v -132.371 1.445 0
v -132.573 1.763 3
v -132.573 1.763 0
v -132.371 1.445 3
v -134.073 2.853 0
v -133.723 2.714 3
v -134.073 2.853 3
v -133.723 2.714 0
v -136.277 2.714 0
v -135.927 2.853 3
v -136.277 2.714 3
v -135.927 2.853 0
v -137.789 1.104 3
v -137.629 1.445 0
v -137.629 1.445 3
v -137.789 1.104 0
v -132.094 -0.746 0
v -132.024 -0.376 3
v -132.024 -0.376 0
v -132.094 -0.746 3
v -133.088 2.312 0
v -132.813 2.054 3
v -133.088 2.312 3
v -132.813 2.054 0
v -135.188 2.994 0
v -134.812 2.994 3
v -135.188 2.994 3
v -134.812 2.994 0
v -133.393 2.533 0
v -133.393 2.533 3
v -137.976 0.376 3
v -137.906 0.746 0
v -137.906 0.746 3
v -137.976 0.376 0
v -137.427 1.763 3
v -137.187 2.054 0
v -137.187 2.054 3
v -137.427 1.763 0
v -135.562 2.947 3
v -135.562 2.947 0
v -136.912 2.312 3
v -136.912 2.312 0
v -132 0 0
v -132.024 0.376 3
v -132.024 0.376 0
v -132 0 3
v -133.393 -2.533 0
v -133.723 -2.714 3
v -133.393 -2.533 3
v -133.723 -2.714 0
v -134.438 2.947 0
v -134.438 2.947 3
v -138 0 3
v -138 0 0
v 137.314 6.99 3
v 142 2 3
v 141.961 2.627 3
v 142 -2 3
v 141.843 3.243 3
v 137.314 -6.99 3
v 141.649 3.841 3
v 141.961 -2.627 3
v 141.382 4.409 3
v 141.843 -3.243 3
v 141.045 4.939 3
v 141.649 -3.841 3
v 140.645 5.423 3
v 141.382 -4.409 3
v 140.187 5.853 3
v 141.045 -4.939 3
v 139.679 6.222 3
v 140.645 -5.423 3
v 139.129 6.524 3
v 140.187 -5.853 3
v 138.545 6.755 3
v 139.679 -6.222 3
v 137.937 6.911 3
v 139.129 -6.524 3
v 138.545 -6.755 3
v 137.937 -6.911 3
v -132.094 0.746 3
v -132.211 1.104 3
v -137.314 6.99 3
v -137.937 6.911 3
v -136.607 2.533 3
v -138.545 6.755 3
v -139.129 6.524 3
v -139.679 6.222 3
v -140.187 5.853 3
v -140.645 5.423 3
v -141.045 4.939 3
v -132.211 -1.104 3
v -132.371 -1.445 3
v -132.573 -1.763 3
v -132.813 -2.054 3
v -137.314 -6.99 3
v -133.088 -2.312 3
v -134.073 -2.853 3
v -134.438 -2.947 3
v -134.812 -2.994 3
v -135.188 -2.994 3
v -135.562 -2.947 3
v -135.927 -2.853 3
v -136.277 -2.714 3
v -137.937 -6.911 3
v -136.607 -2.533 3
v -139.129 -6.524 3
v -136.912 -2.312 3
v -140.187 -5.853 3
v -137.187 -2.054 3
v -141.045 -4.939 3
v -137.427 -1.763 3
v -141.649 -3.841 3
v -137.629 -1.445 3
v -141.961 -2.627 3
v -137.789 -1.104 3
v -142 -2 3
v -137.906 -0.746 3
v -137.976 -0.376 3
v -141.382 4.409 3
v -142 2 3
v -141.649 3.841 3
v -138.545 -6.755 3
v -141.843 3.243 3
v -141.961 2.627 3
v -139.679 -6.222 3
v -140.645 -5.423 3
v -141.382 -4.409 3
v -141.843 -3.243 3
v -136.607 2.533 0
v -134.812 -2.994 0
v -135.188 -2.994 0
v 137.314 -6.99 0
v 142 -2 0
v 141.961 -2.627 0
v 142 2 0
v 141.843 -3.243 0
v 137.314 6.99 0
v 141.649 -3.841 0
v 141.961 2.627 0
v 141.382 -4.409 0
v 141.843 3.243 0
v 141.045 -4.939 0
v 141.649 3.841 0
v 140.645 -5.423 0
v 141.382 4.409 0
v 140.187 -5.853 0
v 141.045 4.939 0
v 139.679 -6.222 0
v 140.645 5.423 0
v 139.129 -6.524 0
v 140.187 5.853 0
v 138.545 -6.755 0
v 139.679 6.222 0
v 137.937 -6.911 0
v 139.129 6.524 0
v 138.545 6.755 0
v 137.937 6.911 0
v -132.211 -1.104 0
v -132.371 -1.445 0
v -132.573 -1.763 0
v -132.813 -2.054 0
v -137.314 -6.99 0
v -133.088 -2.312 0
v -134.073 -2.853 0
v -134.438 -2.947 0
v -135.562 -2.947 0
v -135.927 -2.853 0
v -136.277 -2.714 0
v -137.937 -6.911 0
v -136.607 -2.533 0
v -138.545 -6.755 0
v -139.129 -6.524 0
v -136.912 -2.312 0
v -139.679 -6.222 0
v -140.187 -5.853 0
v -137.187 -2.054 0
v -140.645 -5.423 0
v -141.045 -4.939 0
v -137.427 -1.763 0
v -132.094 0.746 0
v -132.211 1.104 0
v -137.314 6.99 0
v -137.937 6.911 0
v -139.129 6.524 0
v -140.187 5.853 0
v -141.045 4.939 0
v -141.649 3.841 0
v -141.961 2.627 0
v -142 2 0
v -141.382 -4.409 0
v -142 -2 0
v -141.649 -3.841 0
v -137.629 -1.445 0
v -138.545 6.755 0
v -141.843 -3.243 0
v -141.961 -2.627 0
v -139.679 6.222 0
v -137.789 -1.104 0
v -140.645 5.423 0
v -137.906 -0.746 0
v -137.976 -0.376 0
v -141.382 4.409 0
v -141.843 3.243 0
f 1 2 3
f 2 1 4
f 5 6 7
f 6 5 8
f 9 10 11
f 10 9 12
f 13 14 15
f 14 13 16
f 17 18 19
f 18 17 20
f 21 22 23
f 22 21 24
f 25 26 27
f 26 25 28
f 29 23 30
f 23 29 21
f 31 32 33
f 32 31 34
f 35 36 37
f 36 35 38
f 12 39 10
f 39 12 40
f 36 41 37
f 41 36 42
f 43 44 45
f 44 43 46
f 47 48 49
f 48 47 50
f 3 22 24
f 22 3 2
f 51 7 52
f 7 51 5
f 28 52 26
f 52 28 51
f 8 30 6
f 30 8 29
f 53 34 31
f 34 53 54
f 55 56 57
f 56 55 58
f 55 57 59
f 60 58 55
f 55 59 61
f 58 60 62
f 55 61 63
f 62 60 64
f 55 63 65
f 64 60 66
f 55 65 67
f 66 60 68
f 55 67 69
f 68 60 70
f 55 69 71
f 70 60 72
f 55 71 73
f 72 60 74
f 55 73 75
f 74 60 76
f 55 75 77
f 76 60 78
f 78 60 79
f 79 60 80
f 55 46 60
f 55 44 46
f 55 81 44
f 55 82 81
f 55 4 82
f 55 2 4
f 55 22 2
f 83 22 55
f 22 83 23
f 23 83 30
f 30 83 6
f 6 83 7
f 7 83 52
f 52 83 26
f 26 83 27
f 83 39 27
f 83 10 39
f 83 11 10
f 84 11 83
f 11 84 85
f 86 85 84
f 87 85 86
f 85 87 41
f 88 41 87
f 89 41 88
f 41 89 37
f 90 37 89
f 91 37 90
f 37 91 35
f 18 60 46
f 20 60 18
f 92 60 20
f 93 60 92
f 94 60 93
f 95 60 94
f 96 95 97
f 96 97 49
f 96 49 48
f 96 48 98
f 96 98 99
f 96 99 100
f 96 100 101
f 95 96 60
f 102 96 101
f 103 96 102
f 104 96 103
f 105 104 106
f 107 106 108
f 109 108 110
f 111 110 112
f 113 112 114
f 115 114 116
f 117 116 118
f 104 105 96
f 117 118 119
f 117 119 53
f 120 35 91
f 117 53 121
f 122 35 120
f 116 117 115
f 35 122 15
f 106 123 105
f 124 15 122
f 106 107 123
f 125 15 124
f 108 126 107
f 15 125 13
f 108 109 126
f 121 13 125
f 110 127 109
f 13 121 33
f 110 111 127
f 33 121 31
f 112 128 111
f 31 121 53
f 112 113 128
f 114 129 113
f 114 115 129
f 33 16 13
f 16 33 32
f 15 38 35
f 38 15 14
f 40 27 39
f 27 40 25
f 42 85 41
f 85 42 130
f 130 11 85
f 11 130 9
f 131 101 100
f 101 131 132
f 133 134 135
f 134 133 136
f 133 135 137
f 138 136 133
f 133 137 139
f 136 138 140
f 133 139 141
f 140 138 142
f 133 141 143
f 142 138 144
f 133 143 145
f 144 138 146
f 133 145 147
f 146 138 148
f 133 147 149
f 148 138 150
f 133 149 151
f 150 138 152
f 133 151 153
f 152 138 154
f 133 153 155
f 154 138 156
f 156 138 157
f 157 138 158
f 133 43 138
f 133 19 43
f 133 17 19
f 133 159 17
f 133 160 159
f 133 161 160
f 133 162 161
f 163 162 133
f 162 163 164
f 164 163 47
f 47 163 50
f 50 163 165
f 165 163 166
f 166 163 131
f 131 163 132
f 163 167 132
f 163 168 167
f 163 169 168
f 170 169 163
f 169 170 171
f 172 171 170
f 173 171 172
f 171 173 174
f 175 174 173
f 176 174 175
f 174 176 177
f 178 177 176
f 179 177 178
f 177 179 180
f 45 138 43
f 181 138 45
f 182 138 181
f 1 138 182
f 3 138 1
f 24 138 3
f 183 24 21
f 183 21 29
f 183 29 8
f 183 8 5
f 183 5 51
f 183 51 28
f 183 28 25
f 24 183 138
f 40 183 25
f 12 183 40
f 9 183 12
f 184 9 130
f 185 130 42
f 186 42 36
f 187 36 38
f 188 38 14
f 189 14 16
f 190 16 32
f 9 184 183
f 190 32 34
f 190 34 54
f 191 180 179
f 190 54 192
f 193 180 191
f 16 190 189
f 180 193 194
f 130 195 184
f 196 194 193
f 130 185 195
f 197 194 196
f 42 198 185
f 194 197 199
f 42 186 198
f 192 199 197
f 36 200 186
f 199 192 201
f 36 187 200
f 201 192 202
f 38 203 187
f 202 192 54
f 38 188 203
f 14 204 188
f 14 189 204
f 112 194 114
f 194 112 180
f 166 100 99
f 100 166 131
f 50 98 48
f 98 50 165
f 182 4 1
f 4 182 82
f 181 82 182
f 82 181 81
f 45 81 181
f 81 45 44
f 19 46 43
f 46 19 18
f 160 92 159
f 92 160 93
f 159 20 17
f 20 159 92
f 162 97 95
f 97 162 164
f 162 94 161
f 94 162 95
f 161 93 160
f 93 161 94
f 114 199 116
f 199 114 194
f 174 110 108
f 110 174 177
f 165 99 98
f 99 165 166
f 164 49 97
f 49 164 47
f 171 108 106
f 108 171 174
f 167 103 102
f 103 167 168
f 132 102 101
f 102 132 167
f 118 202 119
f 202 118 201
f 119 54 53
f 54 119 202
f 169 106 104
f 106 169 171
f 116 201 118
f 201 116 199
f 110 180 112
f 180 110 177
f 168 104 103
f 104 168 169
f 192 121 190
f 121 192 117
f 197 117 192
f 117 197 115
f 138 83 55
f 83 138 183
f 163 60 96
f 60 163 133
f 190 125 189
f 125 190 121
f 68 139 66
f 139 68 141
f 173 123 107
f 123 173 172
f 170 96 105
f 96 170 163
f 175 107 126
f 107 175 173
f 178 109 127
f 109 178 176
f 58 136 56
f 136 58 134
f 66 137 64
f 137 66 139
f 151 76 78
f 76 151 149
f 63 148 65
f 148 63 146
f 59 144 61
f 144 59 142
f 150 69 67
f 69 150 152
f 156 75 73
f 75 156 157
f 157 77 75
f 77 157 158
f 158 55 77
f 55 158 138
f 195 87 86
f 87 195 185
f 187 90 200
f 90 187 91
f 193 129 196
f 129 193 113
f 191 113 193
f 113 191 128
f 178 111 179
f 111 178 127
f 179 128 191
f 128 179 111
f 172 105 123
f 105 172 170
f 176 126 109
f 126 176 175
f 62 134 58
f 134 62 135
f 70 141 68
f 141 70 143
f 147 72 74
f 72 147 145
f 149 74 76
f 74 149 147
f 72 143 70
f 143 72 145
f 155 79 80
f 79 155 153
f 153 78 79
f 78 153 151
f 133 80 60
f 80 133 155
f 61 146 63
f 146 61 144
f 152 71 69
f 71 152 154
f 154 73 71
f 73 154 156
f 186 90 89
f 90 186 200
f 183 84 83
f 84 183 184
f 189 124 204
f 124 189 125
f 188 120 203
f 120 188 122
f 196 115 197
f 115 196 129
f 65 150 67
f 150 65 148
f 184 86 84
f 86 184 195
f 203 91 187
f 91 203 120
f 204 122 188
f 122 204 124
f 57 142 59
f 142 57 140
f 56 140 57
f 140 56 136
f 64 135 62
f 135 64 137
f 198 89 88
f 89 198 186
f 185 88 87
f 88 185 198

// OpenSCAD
$fn = 50;


difference() {
	union() {
		hull() {
			translate(v = [-137.0000000000, 2.0000000000, 0]) {
				cylinder(h = 3, r = 5);
			}
			translate(v = [137.0000000000, 2.0000000000, 0]) {
				cylinder(h = 3, r = 5);
			}
			translate(v = [-137.0000000000, -2.0000000000, 0]) {
				cylinder(h = 3, r = 5);
			}
			translate(v = [137.0000000000, -2.0000000000, 0]) {
				cylinder(h = 3, r = 5);
			}
		}
	}
	union() {
		translate(v = [-135.0000000000, 0.0000000000, 0]) {
			cylinder(h = 3, r = 3.0000000000);
		}
		translate(v = [-135.0000000000, 0.0000000000, 0]) {
			cylinder(h = 3, r = 1.5000000000);
		}
		translate(v = [-135.0000000000, 0.0000000000, 0]) {
			cylinder(h = 3, r = 1.5000000000);
		}
		translate(v = [-135.0000000000, 0.0000000000, 0]) {
			cylinder(h = 3, r = 1.5000000000);
		}
	}
}
